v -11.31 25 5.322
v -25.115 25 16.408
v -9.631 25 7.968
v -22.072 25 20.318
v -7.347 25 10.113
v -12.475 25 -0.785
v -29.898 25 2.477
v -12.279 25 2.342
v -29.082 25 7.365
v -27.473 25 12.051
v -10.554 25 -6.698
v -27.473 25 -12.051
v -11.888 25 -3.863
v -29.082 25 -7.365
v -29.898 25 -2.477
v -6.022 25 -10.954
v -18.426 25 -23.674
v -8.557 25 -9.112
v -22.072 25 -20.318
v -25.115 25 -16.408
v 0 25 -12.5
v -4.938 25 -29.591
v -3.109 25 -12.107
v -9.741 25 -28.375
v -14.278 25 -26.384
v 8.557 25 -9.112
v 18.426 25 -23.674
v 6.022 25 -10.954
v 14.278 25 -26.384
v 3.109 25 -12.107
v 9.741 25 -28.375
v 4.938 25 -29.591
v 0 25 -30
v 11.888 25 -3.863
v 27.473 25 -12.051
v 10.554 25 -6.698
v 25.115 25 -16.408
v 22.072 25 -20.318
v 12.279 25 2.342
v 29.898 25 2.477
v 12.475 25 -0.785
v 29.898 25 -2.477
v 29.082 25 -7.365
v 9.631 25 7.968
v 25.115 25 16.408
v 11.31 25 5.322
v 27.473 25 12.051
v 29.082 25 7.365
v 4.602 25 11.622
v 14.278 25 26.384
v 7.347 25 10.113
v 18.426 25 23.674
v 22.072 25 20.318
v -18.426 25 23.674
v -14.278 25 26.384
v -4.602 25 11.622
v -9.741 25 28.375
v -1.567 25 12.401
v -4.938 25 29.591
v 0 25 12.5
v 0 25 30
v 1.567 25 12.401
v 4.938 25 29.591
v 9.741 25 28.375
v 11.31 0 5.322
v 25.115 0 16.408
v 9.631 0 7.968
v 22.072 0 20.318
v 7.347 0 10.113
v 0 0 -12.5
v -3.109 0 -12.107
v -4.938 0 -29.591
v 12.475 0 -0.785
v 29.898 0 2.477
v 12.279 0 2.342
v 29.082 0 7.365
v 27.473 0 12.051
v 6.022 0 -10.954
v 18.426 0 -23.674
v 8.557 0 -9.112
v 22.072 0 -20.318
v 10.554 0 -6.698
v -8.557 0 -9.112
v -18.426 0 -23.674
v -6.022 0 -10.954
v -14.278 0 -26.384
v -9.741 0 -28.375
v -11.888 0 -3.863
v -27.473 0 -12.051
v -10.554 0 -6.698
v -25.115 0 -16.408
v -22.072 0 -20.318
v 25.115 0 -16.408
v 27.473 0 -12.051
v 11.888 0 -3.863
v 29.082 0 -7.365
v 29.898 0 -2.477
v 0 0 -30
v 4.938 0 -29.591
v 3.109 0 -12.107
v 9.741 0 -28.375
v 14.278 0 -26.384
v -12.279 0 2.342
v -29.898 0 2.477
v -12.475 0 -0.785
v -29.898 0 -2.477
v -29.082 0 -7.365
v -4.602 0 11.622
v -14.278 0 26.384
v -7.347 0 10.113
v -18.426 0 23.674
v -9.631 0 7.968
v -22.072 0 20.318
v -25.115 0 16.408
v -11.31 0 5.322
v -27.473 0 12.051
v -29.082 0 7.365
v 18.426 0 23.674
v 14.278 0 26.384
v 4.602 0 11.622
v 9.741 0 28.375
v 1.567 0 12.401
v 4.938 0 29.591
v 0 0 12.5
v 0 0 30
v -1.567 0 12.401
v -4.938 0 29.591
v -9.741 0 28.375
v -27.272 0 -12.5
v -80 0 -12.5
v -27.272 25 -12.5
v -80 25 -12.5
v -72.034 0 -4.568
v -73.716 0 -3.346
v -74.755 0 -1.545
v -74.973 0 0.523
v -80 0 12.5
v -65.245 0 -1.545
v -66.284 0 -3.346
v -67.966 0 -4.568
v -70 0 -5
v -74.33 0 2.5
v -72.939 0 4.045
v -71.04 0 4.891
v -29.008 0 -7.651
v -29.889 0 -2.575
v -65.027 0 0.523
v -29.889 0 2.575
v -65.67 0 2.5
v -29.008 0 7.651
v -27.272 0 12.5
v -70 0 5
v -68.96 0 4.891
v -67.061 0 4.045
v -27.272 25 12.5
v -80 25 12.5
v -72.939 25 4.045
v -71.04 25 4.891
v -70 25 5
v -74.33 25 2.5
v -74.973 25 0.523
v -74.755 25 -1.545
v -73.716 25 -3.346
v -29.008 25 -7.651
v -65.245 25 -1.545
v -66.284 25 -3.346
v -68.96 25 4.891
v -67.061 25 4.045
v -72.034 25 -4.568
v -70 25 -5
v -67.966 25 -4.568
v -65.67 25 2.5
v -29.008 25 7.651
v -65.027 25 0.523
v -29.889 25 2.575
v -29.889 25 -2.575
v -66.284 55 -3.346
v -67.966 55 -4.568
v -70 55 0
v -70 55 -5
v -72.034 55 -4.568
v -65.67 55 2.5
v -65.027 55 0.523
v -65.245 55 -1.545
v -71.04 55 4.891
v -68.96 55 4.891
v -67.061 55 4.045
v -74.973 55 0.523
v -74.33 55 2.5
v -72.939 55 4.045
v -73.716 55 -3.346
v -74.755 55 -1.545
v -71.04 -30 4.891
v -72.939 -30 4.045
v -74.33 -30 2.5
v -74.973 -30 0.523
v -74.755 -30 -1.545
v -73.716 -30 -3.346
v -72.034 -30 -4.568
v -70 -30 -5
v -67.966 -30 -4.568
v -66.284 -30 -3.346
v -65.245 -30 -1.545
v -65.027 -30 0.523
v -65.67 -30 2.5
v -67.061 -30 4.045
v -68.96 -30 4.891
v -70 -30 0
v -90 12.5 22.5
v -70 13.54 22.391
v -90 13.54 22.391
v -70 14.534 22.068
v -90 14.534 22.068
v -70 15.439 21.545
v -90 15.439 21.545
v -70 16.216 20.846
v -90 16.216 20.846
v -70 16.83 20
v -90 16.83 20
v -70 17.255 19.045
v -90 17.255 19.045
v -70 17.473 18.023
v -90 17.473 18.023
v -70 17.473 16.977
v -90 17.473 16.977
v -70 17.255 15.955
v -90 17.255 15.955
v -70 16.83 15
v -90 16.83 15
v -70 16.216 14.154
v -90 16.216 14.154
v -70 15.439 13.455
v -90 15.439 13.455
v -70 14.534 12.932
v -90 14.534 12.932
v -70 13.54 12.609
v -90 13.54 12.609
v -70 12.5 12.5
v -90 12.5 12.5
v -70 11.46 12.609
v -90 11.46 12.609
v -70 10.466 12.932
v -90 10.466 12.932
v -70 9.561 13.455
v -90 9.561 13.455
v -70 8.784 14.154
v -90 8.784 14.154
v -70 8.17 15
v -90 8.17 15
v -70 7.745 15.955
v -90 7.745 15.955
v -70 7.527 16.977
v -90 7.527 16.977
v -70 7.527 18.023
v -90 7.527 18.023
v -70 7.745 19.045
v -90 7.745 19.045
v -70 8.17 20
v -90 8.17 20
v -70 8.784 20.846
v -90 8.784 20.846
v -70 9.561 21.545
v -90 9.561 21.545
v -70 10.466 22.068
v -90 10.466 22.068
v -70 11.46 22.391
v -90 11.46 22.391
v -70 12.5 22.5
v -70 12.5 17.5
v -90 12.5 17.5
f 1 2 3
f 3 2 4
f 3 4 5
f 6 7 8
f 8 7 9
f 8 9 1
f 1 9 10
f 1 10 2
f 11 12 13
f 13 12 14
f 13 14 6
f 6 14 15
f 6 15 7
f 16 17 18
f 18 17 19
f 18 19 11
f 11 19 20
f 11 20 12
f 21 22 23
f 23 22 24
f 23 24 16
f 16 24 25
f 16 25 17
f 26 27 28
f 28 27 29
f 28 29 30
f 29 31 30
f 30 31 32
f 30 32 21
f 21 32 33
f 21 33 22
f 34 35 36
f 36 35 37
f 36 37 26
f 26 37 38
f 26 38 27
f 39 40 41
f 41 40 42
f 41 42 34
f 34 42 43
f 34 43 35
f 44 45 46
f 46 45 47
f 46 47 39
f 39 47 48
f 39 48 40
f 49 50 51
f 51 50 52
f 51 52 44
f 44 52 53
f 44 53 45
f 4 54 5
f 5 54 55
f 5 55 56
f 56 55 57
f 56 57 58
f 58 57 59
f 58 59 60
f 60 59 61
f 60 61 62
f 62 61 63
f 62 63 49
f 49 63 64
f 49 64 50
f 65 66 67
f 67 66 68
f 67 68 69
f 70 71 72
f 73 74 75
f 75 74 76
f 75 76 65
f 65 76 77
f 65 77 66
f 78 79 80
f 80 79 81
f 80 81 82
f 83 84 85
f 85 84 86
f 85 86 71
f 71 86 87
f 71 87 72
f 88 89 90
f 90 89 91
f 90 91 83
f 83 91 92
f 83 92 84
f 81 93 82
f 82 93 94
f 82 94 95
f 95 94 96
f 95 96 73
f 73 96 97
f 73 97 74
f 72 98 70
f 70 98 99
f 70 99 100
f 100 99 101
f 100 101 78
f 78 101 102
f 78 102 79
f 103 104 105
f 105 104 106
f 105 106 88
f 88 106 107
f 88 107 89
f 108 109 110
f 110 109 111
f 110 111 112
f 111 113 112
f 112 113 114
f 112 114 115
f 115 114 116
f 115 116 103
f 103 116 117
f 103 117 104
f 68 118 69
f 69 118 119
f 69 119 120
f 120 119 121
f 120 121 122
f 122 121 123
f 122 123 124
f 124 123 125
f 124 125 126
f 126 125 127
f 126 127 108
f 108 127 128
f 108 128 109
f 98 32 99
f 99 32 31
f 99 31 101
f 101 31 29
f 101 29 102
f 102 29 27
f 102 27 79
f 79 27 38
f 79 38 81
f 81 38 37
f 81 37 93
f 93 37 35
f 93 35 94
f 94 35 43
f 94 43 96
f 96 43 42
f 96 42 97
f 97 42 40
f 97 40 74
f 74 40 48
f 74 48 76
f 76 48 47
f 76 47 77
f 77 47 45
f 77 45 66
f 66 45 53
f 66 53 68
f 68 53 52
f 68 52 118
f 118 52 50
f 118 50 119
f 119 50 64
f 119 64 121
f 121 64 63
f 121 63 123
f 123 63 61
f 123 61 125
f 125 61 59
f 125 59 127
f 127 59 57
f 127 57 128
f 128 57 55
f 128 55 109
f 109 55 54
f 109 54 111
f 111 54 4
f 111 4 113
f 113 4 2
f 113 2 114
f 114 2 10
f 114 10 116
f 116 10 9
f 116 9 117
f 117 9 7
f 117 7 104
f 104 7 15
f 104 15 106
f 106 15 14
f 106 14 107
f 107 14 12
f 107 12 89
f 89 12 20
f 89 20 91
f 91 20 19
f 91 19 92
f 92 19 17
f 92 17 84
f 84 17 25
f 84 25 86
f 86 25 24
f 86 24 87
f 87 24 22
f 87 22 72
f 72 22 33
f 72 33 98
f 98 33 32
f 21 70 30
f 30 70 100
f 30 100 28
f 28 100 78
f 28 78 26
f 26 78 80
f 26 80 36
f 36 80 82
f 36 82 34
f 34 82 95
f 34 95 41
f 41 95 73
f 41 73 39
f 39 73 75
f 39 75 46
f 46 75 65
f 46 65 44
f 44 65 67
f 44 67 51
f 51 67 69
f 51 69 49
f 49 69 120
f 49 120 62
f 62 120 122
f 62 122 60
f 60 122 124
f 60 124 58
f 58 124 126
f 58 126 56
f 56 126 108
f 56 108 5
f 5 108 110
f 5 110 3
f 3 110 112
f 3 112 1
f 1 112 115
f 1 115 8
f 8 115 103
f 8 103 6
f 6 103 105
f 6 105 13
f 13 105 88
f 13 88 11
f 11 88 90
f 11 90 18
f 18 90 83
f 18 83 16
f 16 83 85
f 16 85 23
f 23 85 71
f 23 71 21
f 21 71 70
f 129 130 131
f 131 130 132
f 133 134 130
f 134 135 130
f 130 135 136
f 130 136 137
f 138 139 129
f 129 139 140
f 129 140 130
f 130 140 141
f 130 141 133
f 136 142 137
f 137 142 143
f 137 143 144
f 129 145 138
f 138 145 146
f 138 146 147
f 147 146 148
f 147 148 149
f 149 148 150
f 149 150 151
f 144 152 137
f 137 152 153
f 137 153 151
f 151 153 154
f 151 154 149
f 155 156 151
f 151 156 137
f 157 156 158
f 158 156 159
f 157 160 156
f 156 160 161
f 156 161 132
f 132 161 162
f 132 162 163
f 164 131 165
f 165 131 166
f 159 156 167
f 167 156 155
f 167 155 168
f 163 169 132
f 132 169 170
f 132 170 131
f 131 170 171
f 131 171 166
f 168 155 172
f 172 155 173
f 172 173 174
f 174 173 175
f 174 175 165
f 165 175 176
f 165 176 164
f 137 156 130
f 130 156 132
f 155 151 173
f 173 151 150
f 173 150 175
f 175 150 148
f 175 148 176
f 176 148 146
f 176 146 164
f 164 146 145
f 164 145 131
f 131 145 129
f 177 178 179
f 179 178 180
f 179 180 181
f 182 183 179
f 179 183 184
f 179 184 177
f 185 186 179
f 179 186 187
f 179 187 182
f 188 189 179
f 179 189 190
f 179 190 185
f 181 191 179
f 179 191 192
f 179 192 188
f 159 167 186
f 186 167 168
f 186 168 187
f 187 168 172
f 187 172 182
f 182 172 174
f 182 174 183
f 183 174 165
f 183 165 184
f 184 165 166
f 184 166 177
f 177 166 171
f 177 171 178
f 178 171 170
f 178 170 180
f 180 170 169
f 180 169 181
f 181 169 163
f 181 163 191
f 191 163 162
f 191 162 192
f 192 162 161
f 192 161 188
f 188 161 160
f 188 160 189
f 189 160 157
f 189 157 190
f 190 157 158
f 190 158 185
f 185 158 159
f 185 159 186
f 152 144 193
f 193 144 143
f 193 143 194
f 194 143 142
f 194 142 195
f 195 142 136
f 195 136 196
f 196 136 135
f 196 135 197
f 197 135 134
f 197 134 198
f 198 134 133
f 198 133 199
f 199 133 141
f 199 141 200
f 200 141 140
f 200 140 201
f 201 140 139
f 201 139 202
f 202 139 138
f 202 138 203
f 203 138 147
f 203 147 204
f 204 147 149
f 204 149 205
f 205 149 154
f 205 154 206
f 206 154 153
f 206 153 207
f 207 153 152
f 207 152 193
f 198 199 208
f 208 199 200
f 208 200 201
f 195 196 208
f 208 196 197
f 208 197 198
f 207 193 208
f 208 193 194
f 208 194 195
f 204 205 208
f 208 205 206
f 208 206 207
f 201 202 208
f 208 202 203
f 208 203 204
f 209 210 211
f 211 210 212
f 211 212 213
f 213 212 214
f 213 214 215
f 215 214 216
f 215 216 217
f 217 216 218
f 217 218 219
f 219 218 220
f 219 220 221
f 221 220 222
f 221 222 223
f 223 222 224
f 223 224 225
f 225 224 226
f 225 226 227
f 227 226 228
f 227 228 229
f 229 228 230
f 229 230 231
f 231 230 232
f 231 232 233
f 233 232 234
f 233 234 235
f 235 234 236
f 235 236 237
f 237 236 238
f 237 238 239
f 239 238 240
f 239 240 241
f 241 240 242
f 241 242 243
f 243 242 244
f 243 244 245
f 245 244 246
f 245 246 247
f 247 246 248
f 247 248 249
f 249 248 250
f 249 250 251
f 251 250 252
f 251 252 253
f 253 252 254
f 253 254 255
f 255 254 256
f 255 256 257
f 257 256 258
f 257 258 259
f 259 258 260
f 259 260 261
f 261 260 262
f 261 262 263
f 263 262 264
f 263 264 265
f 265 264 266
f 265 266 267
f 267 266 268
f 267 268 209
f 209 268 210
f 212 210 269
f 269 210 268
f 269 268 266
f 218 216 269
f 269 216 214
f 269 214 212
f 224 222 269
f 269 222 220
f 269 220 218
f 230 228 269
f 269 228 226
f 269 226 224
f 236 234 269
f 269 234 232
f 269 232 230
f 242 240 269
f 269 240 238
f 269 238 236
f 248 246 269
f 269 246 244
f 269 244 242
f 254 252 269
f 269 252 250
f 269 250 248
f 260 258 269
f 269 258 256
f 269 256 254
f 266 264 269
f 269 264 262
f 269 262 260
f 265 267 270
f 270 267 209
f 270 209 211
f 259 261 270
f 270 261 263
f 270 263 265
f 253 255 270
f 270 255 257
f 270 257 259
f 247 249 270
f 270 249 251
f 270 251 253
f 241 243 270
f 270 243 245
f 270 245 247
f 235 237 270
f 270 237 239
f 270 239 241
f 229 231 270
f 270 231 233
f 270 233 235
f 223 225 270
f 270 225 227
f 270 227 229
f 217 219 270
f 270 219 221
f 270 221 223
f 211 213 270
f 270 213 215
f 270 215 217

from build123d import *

# Parameters (mm, degrees)
SKETCH1_R                            = 30
SKETCH1_R_2                          = 12.5
BOSS_EXTRUDE1_DEPTH                  = 25
SKETCH3_W                            = 25
SKETCH3_H                            = 25
BOSS_EXTRUDE2_DEPTH                  = 50
BOSS_EXTRUDE2_DIRECTION_2_REACH      = 73.589
BOSS_EXTRUDE2_DIRECTION_2_END_RADIUS = 30
BOSS_EXTRUDE3_DEPTH                  = 30
BOSS_EXTRUDE3_DEPTH_BACK             = 55
SKETCH4_R                            = 5
BOSS_EXTRUDE4_DEPTH                  = 10
BOSS_EXTRUDE4_DEPTH_BACK             = 10
SKETCH5_R                            = 5


with BuildPart() as part:
    # Sketch1 → Boss-Extrude1 (new body)
    with BuildSketch(Plane(origin=(0, 0, 0), x_dir=(1, 0, 0), z_dir=(0, 1, 0))):
        Circle(SKETCH1_R)
        Circle(SKETCH1_R_2, mode=Mode.SUBTRACT)
    extrude(amount=BOSS_EXTRUDE1_DEPTH)


with BuildPart() as body_2:
    # Sketch3 → Boss-Extrude2 (new body)
    with BuildSketch(Plane.ZY.offset(30)):
        with Locations((0, 12.5)):
            Rectangle(SKETCH3_W, SKETCH3_H)
    extrude(amount=BOSS_EXTRUDE2_DEPTH)

    # Boss-Extrude2 direction 2: up to this cylinder (the profile starts outside it)
    boss_extrude2_direction_2_end = Plane(origin=(0, 12.5, 0), z_dir=(0, -1, 0)) * Cylinder(BOSS_EXTRUDE2_DIRECTION_2_END_RADIUS, 208.178, mode=Mode.PRIVATE)
    # Sketch3 → Boss-Extrude2 direction 2 (add, up to the surface)
    with BuildSketch(Plane.ZY.offset(30), mode=Mode.PRIVATE) as boss_extrude2_direction_2_sk1:
        with Locations((0, 12.5)):
            Rectangle(SKETCH3_W, SKETCH3_H)
    boss_extrude2_direction_2_tool1 = extrude(boss_extrude2_direction_2_sk1.sketch, amount=-BOSS_EXTRUDE2_DIRECTION_2_REACH, mode=Mode.PRIVATE) - boss_extrude2_direction_2_end
    add(boss_extrude2_direction_2_tool1.solids().sort_by_distance((-30, 12.5, 0))[0])
    add(boss_extrude2_direction_2_tool1.solids().sort_by_distance((-30, 12.5, 0))[1])

    # Sketch4 → Boss-Extrude3 (add, two sides: drawn at the far end of the back side and taken through both)
    with BuildSketch(Plane.XZ.offset(-BOSS_EXTRUDE3_DEPTH_BACK)):
        with Locations((-70, 0)):
            Circle(SKETCH4_R)
    extrude(amount=BOSS_EXTRUDE3_DEPTH + BOSS_EXTRUDE3_DEPTH_BACK)


with BuildPart() as body_3:
    # Sketch5 → Boss-Extrude4 (new, two sides: drawn at the far end of the back side and taken through both)
    with BuildSketch(Plane.ZY.offset(80).offset(-BOSS_EXTRUDE4_DEPTH_BACK)):
        with Locations((17.5, 12.5)):
            Circle(SKETCH5_R)
    extrude(amount=BOSS_EXTRUDE4_DEPTH + BOSS_EXTRUDE4_DEPTH_BACK)


solid = Compound([part.part, body_2.part, body_3.part])
